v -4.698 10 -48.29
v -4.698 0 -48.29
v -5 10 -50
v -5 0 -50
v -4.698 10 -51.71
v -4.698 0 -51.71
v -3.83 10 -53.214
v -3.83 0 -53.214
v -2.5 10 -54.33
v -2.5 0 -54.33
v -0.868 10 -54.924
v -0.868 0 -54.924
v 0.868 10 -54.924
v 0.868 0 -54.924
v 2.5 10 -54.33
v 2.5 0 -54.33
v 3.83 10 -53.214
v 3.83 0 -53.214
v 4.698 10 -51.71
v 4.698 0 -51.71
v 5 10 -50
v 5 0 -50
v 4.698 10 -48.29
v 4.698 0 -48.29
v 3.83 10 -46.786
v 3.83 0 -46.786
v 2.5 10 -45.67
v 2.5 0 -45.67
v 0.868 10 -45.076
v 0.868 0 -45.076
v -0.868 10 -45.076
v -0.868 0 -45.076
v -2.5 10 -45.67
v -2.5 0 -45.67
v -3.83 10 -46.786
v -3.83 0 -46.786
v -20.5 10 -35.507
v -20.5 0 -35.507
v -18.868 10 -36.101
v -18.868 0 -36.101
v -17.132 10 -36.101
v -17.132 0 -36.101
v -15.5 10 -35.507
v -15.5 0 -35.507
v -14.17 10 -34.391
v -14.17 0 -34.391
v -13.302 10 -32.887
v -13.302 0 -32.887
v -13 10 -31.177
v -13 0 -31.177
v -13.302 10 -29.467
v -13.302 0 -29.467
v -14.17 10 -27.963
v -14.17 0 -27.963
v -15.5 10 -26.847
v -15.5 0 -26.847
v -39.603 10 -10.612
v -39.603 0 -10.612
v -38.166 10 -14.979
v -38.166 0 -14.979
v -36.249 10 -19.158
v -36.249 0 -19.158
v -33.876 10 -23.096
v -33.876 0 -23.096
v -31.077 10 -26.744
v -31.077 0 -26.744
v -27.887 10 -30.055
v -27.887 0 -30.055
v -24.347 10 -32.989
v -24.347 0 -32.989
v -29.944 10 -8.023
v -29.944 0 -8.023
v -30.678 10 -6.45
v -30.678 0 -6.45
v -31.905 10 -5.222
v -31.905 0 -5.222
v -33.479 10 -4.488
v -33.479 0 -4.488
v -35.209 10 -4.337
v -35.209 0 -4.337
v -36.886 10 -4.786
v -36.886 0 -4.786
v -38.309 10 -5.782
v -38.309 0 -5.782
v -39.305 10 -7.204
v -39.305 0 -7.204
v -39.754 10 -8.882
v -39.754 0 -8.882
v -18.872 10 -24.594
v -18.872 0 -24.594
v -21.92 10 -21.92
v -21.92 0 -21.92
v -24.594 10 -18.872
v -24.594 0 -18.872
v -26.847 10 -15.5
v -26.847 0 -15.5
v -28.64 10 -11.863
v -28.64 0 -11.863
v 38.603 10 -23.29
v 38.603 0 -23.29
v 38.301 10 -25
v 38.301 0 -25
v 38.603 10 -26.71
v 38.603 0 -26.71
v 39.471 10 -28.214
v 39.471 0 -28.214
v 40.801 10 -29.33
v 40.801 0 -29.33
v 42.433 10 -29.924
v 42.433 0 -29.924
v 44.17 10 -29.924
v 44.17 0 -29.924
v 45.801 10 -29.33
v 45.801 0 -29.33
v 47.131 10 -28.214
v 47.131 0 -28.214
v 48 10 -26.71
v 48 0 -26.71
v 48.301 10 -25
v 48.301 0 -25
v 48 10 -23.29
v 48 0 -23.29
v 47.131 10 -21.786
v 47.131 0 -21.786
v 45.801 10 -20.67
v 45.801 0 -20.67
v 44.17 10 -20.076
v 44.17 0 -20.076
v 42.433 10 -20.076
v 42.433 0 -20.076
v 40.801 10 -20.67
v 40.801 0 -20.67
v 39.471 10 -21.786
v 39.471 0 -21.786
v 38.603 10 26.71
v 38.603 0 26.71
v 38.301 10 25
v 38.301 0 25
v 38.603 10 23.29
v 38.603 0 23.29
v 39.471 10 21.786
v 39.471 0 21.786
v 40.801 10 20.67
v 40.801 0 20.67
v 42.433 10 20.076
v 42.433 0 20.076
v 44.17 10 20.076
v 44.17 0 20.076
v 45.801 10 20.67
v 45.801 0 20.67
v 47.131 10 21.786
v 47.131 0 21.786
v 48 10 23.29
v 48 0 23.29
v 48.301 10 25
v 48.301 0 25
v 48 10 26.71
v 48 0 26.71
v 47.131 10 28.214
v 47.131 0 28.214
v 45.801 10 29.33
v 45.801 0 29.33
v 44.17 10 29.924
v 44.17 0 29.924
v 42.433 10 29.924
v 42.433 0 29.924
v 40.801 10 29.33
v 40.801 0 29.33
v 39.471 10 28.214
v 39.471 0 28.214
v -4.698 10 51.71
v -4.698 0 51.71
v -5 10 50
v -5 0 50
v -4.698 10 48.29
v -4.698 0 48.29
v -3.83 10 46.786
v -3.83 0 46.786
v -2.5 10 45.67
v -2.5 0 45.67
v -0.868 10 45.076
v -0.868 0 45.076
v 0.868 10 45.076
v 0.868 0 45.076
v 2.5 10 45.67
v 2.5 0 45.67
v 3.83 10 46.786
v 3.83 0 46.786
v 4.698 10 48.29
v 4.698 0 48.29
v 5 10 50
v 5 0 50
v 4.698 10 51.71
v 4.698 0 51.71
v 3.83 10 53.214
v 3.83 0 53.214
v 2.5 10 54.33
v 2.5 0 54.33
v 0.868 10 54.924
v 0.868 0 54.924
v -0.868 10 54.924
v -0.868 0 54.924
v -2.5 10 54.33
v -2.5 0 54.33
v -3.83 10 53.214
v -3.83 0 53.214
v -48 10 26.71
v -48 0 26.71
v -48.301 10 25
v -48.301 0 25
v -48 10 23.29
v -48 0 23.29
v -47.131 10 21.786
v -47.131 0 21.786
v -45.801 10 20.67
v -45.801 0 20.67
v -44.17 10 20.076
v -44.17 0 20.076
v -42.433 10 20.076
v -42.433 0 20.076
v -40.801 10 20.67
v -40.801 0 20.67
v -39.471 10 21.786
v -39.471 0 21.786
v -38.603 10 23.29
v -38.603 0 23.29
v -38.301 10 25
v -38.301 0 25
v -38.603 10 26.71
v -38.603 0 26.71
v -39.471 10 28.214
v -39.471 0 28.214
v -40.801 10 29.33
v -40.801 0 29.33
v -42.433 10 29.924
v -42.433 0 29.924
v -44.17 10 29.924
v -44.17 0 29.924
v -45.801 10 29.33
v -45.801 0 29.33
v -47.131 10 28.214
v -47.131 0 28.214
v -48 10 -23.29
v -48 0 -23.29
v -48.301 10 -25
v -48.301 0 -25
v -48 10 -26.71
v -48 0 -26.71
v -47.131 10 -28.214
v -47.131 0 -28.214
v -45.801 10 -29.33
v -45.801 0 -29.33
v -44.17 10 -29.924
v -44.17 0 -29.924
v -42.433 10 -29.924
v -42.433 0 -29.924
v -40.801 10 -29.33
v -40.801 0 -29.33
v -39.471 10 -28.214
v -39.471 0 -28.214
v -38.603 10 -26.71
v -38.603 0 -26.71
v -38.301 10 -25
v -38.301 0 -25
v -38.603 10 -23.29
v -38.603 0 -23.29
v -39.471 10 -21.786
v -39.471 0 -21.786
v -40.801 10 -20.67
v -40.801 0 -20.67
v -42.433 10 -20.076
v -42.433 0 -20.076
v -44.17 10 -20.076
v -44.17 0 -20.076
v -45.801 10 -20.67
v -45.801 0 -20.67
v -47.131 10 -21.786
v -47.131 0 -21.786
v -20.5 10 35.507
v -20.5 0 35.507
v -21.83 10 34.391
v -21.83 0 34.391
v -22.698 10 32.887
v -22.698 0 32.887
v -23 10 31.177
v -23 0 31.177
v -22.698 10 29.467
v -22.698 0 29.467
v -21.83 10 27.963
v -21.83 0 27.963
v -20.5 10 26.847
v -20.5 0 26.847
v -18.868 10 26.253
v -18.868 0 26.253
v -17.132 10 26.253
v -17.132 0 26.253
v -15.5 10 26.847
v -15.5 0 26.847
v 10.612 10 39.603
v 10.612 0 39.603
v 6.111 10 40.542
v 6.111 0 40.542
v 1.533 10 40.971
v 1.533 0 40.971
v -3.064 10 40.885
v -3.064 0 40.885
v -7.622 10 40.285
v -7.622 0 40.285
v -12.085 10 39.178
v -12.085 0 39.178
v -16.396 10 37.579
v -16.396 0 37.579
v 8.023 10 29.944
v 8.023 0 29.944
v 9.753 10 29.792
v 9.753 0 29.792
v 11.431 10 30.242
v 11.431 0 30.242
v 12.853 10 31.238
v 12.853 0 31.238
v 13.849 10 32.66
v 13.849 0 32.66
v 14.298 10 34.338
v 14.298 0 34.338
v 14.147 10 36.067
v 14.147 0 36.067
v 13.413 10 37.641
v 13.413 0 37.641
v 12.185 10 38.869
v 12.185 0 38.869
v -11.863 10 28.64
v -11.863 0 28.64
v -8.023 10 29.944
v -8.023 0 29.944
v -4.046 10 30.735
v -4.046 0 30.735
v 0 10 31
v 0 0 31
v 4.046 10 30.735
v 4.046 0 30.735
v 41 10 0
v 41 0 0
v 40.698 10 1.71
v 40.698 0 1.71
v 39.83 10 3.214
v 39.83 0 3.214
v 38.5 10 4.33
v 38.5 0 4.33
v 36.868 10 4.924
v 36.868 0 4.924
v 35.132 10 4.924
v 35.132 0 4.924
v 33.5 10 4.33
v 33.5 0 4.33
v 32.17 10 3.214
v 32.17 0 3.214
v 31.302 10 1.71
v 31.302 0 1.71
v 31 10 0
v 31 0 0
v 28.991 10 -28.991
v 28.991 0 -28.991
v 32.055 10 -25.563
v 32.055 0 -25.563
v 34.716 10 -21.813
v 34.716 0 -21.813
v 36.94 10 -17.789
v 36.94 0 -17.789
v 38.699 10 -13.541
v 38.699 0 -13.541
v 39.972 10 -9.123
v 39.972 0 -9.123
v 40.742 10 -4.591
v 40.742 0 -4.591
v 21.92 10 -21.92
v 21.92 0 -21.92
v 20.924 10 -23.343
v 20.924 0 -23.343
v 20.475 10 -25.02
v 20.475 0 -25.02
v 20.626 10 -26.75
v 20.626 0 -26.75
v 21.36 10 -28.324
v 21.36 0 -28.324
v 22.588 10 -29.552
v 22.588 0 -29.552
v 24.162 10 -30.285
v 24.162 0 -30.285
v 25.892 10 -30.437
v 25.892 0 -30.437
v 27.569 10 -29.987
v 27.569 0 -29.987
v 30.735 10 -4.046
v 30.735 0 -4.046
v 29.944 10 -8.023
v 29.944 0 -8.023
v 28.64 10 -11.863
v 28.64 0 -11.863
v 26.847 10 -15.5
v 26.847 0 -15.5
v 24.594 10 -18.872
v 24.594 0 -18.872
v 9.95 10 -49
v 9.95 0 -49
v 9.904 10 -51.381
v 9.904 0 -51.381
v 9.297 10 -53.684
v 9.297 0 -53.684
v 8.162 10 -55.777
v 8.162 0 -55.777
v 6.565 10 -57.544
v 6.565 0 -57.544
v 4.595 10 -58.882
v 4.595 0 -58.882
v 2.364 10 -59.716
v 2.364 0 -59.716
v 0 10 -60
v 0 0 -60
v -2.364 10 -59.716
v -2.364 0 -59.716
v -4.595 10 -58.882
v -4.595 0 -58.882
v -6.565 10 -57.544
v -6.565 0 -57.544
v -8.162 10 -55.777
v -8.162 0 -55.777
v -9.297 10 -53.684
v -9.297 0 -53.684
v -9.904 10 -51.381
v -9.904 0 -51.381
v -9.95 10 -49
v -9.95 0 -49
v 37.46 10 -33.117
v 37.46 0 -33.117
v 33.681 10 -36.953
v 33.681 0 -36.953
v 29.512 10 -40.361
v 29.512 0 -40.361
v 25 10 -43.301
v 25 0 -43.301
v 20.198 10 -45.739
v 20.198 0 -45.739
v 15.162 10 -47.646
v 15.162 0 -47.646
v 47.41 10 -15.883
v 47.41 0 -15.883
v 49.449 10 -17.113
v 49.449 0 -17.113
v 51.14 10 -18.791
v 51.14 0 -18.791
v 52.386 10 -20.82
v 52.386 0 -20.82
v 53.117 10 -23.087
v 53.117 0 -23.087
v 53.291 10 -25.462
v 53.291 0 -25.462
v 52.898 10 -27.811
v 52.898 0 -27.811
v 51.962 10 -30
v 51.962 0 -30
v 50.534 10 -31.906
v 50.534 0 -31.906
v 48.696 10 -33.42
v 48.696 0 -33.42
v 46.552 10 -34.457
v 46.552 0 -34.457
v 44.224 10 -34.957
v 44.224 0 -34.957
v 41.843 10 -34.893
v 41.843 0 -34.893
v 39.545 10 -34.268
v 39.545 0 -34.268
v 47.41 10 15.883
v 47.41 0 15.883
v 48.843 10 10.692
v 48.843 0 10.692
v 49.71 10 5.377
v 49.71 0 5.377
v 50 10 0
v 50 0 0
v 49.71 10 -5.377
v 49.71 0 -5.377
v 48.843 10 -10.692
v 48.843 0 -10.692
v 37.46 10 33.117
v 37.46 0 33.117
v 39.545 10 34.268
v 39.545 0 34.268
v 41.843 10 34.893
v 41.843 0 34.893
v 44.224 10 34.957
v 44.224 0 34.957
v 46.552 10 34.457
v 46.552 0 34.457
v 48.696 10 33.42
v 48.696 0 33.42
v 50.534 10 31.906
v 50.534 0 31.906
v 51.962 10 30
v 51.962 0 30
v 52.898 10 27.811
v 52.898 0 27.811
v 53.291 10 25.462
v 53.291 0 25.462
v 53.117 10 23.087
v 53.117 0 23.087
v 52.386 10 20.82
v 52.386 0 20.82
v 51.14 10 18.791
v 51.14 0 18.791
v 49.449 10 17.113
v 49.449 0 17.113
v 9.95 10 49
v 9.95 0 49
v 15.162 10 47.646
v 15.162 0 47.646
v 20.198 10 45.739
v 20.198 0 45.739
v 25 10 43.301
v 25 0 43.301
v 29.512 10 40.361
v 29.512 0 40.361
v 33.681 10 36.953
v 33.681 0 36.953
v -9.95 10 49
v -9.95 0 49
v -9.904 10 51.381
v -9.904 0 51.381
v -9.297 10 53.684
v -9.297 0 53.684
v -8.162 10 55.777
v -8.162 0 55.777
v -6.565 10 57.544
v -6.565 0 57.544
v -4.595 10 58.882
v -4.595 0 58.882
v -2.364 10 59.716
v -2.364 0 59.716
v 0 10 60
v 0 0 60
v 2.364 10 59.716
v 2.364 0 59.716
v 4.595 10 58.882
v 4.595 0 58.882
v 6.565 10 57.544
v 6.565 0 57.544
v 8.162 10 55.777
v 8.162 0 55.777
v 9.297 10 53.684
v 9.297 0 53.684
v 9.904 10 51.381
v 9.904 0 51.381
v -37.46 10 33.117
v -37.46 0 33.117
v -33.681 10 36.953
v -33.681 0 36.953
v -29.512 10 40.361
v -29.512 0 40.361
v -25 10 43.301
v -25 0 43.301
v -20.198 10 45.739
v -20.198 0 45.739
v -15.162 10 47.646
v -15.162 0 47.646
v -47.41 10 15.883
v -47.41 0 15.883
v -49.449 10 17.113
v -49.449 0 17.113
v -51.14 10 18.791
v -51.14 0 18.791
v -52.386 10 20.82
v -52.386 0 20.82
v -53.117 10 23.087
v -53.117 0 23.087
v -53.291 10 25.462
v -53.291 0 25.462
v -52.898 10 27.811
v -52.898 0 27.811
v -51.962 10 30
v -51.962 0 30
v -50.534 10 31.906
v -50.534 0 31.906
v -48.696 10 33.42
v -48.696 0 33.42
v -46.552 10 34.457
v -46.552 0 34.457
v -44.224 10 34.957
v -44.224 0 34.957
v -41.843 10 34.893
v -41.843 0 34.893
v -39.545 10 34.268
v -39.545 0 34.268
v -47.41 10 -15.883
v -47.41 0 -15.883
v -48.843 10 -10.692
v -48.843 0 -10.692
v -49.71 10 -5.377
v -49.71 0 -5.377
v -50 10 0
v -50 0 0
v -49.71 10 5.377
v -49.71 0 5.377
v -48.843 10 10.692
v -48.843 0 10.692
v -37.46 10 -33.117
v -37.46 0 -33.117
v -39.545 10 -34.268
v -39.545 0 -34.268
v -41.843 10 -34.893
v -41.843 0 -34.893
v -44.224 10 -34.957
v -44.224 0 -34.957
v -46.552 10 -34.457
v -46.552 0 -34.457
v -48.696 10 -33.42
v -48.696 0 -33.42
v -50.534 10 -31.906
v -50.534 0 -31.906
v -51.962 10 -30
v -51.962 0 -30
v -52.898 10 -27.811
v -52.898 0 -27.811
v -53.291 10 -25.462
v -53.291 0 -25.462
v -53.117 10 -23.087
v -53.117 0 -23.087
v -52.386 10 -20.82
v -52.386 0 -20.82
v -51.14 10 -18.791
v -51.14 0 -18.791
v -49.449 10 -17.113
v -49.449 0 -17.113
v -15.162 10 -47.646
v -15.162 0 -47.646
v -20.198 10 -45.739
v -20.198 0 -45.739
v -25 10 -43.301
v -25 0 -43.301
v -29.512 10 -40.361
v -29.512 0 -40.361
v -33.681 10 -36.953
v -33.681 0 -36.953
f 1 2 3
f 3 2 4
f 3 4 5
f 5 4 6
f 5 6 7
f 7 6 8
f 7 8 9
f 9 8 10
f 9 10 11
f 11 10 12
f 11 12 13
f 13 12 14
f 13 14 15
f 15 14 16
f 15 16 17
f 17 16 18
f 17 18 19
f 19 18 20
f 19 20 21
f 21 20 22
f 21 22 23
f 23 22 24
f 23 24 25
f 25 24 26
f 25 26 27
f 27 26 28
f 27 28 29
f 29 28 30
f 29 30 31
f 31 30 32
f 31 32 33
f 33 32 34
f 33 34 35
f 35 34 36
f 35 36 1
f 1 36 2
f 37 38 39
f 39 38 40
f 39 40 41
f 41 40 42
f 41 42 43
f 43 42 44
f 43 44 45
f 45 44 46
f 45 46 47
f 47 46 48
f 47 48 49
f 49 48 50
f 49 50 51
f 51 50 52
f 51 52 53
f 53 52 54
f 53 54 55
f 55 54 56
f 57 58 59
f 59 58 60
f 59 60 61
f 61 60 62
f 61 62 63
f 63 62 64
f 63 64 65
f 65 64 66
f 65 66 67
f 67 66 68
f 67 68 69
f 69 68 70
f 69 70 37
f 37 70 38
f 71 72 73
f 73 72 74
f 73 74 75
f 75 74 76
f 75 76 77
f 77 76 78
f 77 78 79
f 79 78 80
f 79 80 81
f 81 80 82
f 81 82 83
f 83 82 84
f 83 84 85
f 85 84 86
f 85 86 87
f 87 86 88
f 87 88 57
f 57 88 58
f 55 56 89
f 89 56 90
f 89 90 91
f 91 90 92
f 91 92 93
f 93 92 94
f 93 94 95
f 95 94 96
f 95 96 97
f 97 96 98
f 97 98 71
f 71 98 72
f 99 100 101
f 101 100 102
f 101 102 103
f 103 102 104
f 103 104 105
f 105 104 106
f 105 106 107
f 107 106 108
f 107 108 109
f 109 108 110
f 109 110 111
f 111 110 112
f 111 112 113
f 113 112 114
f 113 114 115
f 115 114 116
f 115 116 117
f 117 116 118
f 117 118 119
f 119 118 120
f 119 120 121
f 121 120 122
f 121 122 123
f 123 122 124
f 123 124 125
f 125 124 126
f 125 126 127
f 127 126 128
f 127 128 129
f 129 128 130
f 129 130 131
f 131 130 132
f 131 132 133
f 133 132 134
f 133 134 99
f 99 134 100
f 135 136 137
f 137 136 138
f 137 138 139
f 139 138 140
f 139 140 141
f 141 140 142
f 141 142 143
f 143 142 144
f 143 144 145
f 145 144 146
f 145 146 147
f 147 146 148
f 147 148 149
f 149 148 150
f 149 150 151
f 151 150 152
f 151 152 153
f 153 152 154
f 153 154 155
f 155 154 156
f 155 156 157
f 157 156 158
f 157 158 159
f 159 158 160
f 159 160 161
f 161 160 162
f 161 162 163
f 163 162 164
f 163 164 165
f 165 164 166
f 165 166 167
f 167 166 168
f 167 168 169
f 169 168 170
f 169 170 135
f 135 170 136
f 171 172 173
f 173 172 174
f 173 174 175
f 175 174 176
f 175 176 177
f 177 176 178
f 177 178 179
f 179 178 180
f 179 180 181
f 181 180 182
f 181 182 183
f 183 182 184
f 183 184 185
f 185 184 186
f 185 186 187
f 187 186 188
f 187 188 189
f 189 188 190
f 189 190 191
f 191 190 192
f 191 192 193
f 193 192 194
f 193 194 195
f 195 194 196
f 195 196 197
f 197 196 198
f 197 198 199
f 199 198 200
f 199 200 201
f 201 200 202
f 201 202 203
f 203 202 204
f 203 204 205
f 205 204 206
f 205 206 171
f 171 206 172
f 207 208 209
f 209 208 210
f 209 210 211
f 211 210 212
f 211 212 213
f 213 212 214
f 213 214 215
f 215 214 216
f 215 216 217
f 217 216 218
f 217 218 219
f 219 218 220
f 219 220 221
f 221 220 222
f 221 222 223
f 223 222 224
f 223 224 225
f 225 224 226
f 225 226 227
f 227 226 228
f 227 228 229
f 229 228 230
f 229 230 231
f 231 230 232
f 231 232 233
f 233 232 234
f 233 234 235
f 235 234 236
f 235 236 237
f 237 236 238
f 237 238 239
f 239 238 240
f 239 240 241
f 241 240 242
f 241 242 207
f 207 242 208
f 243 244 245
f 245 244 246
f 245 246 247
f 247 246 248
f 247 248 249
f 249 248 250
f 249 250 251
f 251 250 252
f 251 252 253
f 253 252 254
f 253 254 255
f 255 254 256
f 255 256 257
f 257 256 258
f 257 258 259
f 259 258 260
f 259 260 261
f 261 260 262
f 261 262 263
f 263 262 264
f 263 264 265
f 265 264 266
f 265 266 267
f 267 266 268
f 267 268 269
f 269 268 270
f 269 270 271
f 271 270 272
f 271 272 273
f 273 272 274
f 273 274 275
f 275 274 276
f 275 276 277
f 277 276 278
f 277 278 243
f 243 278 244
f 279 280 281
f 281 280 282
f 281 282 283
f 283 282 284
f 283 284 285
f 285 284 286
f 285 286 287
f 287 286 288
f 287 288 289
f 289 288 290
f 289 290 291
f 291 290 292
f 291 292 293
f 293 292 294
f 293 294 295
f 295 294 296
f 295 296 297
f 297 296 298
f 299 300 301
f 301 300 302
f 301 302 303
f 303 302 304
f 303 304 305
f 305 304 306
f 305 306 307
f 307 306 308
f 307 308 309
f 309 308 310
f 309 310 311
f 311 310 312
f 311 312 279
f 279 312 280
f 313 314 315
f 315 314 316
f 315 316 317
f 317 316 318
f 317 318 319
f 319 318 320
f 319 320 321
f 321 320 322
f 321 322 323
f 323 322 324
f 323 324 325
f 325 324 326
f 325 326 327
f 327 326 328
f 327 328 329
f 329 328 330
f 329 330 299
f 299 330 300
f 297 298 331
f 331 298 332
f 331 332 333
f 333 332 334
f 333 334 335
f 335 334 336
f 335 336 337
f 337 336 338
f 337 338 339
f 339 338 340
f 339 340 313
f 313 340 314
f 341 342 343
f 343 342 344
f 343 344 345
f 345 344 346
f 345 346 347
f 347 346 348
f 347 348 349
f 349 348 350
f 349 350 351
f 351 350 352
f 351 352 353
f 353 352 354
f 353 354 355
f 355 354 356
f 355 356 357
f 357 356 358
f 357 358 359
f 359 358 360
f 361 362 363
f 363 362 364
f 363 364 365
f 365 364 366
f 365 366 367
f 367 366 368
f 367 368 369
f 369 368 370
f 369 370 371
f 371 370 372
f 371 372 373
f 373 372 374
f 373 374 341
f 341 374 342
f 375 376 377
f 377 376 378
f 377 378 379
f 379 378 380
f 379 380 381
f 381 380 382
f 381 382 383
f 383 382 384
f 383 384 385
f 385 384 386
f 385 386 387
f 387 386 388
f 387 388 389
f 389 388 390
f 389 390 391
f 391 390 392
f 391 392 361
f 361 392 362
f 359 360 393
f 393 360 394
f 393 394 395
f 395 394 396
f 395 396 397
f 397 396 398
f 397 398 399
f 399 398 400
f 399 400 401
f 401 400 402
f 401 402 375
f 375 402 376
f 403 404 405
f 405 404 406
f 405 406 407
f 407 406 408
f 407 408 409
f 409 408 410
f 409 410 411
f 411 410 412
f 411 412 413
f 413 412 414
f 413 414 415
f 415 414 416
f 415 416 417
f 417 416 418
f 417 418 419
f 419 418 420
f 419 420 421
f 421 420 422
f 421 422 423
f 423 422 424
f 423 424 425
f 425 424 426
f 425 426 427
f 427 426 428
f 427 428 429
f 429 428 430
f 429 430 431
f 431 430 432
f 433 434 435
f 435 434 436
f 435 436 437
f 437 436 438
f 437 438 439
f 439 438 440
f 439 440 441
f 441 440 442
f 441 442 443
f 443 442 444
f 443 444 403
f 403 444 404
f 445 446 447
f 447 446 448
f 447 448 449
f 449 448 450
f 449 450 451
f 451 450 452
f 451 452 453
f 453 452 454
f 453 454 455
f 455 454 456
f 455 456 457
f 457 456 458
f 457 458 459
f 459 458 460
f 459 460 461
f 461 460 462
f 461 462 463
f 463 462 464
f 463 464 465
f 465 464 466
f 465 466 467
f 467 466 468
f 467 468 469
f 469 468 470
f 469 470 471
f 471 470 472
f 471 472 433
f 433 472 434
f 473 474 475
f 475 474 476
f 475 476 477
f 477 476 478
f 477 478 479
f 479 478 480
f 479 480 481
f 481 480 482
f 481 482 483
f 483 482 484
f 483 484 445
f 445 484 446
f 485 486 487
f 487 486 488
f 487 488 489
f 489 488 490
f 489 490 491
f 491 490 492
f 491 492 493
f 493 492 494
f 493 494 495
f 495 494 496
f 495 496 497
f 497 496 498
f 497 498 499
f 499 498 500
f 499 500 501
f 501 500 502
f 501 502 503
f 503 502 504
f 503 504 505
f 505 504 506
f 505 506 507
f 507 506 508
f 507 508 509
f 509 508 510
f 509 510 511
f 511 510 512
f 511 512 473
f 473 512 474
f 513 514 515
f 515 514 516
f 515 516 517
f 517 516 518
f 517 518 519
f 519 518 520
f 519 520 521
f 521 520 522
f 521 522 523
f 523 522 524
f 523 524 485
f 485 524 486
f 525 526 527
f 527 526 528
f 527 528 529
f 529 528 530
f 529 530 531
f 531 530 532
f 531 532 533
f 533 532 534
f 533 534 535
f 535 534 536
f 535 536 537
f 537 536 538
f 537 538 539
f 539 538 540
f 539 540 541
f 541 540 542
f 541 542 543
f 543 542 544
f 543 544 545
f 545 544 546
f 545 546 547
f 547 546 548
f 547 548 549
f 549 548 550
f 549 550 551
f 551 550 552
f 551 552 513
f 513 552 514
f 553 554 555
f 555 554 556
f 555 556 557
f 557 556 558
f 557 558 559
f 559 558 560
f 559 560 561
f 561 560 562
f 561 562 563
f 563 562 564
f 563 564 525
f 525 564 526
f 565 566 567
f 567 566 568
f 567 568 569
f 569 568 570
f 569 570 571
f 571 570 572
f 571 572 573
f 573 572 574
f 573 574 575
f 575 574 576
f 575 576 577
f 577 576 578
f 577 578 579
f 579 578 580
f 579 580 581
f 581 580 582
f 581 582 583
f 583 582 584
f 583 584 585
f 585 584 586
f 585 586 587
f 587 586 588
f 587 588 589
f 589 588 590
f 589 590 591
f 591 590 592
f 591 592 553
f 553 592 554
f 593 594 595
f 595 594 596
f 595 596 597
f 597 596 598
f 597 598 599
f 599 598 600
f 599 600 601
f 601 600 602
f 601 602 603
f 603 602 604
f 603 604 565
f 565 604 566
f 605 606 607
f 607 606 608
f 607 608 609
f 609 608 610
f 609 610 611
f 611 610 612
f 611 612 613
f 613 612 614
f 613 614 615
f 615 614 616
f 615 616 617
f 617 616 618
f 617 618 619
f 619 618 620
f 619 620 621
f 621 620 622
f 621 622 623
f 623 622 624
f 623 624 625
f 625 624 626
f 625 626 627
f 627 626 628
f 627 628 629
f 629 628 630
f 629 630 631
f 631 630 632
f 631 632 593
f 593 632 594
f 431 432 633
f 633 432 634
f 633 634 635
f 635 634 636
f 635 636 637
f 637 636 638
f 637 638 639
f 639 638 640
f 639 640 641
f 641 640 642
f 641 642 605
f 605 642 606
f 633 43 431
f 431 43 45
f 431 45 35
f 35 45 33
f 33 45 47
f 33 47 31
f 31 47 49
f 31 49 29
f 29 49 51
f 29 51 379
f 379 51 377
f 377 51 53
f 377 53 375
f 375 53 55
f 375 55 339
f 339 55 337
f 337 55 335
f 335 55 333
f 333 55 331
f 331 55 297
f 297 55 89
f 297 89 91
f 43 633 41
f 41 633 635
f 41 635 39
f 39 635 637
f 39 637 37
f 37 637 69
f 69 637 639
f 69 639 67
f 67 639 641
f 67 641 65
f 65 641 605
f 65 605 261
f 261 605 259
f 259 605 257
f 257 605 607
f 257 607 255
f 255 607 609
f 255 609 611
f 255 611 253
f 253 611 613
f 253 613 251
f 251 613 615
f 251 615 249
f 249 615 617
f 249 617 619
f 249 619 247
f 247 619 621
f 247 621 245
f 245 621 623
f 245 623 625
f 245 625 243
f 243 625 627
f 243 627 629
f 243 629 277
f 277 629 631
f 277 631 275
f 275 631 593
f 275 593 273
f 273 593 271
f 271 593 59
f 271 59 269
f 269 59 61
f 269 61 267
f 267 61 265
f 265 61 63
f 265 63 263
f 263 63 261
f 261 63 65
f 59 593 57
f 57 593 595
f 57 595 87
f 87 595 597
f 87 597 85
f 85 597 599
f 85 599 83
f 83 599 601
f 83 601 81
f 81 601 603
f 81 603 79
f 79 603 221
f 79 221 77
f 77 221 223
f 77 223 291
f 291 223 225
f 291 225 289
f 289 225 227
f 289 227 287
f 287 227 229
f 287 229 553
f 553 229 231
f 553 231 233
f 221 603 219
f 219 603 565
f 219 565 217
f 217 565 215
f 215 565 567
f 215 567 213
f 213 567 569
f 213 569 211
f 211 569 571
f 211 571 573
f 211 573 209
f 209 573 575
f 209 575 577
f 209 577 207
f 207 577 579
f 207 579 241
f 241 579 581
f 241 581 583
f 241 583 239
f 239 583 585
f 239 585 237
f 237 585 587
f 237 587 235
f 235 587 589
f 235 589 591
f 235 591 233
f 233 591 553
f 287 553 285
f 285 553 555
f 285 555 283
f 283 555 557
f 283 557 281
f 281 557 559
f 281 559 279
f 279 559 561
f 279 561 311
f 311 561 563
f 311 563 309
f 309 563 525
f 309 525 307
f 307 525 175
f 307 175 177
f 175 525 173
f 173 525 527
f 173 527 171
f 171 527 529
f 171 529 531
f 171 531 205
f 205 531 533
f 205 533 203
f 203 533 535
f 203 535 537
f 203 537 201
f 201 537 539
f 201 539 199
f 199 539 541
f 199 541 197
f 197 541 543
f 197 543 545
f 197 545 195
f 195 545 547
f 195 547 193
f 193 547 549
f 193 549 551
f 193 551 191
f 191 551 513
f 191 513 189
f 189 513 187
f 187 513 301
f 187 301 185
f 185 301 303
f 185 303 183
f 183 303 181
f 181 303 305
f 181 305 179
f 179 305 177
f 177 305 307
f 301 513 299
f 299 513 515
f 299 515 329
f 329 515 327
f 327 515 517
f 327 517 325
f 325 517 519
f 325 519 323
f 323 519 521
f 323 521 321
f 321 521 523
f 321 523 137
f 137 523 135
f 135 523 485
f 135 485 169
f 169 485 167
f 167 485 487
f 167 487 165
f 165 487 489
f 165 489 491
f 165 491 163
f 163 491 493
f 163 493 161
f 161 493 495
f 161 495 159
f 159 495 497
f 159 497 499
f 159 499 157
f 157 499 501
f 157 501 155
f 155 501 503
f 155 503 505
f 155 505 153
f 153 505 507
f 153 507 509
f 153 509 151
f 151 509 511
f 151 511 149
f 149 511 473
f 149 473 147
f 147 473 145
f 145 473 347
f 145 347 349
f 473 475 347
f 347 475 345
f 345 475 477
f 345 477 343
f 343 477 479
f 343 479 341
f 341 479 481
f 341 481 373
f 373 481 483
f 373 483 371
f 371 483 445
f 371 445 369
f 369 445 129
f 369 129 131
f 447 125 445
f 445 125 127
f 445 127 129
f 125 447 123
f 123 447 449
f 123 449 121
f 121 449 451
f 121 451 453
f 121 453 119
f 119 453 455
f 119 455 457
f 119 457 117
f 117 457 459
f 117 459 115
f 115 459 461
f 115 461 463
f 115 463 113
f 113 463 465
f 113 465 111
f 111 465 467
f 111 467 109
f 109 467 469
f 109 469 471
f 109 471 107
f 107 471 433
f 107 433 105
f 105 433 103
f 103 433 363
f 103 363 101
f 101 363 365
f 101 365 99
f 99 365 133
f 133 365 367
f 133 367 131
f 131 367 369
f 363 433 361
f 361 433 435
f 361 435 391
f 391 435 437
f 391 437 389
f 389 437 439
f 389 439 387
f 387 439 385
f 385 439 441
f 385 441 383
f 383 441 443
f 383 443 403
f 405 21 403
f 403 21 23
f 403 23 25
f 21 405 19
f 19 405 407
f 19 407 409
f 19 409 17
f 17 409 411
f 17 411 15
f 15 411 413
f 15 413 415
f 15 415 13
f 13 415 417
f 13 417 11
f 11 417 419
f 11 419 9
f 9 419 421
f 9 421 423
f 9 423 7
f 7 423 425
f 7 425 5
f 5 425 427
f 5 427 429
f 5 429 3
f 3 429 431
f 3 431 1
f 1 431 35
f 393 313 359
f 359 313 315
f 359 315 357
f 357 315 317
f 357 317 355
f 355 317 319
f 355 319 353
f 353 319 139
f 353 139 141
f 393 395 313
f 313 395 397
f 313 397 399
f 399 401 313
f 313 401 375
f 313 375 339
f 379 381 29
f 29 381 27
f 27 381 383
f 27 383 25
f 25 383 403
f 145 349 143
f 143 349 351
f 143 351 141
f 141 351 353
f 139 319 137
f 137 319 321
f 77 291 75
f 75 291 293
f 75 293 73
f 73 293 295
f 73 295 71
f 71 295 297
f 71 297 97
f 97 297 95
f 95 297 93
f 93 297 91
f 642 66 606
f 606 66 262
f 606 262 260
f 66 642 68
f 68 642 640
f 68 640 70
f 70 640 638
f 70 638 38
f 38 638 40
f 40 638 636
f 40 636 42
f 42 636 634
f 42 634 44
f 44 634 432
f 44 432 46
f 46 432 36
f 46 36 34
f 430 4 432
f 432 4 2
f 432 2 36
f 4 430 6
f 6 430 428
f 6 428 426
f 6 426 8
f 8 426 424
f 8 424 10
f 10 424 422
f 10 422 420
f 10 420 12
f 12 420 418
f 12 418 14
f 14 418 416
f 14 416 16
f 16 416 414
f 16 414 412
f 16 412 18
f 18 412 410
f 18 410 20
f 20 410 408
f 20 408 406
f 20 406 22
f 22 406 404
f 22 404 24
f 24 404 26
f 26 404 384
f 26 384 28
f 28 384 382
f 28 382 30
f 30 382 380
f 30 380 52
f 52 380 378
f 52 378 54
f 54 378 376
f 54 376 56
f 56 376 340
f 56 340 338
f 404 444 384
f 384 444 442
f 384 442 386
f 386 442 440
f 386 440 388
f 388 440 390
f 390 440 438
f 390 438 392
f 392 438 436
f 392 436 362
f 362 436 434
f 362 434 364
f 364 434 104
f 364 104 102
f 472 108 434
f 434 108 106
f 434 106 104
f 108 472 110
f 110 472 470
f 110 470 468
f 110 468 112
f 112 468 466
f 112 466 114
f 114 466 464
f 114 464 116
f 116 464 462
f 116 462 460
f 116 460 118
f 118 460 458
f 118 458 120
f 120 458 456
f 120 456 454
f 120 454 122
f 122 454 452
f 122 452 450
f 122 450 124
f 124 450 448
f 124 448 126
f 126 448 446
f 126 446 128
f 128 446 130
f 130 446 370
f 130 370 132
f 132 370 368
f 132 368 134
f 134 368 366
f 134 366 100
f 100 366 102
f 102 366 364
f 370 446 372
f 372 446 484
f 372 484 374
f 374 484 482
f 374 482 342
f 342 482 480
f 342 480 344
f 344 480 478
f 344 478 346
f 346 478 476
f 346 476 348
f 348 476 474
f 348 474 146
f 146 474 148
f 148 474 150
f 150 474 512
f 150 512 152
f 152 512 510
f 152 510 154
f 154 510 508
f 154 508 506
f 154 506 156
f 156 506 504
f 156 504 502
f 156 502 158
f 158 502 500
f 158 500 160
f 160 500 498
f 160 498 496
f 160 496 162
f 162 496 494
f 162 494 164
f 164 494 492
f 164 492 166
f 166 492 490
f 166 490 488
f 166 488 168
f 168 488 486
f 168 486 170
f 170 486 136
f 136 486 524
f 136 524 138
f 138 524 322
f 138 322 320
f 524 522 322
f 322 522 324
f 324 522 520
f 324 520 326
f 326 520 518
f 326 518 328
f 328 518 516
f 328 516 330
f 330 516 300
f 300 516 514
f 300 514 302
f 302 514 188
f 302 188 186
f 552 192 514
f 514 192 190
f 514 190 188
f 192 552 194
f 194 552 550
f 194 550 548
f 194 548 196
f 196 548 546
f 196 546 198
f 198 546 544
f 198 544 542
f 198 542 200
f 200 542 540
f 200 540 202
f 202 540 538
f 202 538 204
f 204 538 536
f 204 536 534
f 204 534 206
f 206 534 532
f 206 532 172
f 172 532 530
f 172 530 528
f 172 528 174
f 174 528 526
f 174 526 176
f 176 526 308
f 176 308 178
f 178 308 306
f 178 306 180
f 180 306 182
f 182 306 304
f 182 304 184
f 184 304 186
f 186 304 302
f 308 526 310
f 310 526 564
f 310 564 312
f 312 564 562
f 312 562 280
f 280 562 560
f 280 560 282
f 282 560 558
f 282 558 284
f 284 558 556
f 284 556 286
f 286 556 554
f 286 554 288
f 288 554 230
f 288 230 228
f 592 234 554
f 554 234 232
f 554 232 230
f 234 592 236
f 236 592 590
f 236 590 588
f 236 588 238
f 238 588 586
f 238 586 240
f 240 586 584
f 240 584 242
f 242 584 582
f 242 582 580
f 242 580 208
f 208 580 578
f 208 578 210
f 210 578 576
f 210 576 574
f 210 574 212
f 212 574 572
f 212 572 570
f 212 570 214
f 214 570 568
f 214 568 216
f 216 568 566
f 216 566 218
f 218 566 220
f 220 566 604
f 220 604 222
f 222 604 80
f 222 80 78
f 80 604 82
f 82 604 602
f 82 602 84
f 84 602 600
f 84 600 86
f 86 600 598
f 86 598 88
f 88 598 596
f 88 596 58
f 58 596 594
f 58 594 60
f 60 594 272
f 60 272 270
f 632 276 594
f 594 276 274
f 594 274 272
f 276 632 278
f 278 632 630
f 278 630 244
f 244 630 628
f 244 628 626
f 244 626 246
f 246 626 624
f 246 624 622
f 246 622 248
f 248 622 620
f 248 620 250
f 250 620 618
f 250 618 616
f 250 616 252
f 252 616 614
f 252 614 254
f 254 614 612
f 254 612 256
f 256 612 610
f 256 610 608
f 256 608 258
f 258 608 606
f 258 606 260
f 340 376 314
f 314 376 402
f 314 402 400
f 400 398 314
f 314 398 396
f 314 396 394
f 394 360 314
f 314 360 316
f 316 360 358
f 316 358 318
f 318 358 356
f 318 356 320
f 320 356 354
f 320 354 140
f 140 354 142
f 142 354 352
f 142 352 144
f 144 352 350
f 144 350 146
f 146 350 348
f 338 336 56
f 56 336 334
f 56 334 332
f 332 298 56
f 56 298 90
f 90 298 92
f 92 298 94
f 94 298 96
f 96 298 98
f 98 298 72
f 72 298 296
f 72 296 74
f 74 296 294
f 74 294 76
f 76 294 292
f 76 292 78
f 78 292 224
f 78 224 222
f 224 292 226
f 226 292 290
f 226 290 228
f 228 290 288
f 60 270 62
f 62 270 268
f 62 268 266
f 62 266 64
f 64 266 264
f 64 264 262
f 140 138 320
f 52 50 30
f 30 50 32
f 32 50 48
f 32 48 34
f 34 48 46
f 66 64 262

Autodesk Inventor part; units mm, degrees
ref_plane "YZ Plane" through (0, 0, 0) normal (1, 0, 0) x (0, 1, 0)
ref_plane "XZ Plane" through (0, 0, 0) normal (0, 1, 0) x (-1, 0, 0)
ref_plane "XY Plane" through (0, 0, 0) normal (0, 0, 1) x (1, 0, 0)
sketch "Sketch1" plane through (0, 0, 0) normal (0, 1, 0) x (-1, 0, 0)
  circle A0 centre (0, 0) radius 36 construction
  circle A1 centre (0, -50) radius 5
  arc A2 (-9.9499, -49) -> (9.9499, -49) centre (0, -50) ccw
  line L0 (0, 0) -> (0, -50) construction
  line L1 (0, 0) -> (25, -43.3013) construction
  line L2 (0, 0) -> (50, 0) construction
  arc A3 (15.5, -26.8468) -> (20.5, -35.507) centre (18, -31.1769) ccw
  line L3 (0, 0) -> (48.2963, -12.941) construction
  line L4 (0, 0) -> (50, 0) construction
  arc A4 (39.603, -10.6116) -> (29.9437, -8.0234) centre (34.7733, -9.3175) ccw
  arc A5 (29.9437, -8.0234) -> (15.5, -26.8468) centre (0, 0) ccw construction
  arc A6 (39.603, -10.6116) -> (20.5, -35.507) centre (0, 0) ccw construction
  arc A7 (20.5, -35.507) -> (39.603, -10.6116) centre (0, 0) ccw
  arc A8 (15.5, -26.8468) -> (29.9437, -8.0234) centre (0, 0) ccw
  circle A9 centre (-43.3013, -25) radius 5
  arc A10 (-47.4102, -15.8832) -> (-37.4603, -33.1168) centre (-43.3013, -25) ccw
  circle A11 centre (-43.3013, 25) radius 5
  arc A12 (-37.4603, 33.1168) -> (-47.4102, 15.8832) centre (-43.3013, 25) ccw
  circle A13 centre (0, 50) radius 5
  arc A14 (9.9499, 49) -> (-9.9499, 49) centre (0, 50) ccw
  circle A15 centre (43.3013, 25) radius 5
  arc A16 (47.4102, 15.8832) -> (37.4603, 33.1168) centre (43.3013, 25) ccw
  circle A17 centre (43.3013, -25) radius 5
  arc A18 (37.4603, -33.1168) -> (47.4102, -15.8832) centre (43.3013, -25) ccw
  arc A19 (15.5, 26.8468) -> (20.5, 35.507) centre (18, 31.1769) ccw
  arc A20 (20.5, 35.507) -> (-10.6116, 39.603) centre (0, 0) ccw
  arc A21 (15.5, 26.8468) -> (-8.0234, 29.9437) centre (0, 0) ccw
  arc A22 (-10.6116, 39.603) -> (-8.0234, 29.9437) centre (-9.3175, 34.7733) ccw
  arc A23 (-31, 0) -> (-41, 0) centre (-36, 0) ccw
  arc A24 (-41, 0) -> (-28.9914, -28.9914) centre (0, 0) ccw
  arc A25 (-31, 0) -> (-21.9203, -21.9203) centre (0, 0) ccw
  arc A26 (-28.9914, -28.9914) -> (-21.9203, -21.9203) centre (-25.4558, -25.4558) ccw
  arc A27 (9.9499, -49) -> (37.4603, -33.1168) centre (0, 0) ccw
  arc A28 (47.4102, -15.8832) -> (47.4102, 15.8832) centre (0, 0) ccw
  arc A29 (37.4603, 33.1168) -> (9.9499, 49) centre (0, 0) ccw
  arc A30 (-9.9499, 49) -> (-37.4603, 33.1168) centre (0, 0) ccw
  arc A31 (-47.4102, 15.8832) -> (-47.4102, -15.8832) centre (0, 0) ccw
  arc A32 (-37.4603, -33.1168) -> (-9.9499, -49) centre (0, 0) ccw
  circle A33 centre (0, 0) radius 50 construction
  dimension "d20" = 100
  dimension "d0" = 72
  dimension "d4" = 10
  dimension "d5" = 10
  dimension "d6" = 60
  dimension "d7" = 10
  dimension "d8" = 15
  dimension "d10" = 10
  dimension "d13" = 360
  dimension "d17" = 360
  dimension "d19" = 50
extrude "Extrusion1" add sketch "Sketch1" along normal blind 10
properties part number "CE-1.3.2"
